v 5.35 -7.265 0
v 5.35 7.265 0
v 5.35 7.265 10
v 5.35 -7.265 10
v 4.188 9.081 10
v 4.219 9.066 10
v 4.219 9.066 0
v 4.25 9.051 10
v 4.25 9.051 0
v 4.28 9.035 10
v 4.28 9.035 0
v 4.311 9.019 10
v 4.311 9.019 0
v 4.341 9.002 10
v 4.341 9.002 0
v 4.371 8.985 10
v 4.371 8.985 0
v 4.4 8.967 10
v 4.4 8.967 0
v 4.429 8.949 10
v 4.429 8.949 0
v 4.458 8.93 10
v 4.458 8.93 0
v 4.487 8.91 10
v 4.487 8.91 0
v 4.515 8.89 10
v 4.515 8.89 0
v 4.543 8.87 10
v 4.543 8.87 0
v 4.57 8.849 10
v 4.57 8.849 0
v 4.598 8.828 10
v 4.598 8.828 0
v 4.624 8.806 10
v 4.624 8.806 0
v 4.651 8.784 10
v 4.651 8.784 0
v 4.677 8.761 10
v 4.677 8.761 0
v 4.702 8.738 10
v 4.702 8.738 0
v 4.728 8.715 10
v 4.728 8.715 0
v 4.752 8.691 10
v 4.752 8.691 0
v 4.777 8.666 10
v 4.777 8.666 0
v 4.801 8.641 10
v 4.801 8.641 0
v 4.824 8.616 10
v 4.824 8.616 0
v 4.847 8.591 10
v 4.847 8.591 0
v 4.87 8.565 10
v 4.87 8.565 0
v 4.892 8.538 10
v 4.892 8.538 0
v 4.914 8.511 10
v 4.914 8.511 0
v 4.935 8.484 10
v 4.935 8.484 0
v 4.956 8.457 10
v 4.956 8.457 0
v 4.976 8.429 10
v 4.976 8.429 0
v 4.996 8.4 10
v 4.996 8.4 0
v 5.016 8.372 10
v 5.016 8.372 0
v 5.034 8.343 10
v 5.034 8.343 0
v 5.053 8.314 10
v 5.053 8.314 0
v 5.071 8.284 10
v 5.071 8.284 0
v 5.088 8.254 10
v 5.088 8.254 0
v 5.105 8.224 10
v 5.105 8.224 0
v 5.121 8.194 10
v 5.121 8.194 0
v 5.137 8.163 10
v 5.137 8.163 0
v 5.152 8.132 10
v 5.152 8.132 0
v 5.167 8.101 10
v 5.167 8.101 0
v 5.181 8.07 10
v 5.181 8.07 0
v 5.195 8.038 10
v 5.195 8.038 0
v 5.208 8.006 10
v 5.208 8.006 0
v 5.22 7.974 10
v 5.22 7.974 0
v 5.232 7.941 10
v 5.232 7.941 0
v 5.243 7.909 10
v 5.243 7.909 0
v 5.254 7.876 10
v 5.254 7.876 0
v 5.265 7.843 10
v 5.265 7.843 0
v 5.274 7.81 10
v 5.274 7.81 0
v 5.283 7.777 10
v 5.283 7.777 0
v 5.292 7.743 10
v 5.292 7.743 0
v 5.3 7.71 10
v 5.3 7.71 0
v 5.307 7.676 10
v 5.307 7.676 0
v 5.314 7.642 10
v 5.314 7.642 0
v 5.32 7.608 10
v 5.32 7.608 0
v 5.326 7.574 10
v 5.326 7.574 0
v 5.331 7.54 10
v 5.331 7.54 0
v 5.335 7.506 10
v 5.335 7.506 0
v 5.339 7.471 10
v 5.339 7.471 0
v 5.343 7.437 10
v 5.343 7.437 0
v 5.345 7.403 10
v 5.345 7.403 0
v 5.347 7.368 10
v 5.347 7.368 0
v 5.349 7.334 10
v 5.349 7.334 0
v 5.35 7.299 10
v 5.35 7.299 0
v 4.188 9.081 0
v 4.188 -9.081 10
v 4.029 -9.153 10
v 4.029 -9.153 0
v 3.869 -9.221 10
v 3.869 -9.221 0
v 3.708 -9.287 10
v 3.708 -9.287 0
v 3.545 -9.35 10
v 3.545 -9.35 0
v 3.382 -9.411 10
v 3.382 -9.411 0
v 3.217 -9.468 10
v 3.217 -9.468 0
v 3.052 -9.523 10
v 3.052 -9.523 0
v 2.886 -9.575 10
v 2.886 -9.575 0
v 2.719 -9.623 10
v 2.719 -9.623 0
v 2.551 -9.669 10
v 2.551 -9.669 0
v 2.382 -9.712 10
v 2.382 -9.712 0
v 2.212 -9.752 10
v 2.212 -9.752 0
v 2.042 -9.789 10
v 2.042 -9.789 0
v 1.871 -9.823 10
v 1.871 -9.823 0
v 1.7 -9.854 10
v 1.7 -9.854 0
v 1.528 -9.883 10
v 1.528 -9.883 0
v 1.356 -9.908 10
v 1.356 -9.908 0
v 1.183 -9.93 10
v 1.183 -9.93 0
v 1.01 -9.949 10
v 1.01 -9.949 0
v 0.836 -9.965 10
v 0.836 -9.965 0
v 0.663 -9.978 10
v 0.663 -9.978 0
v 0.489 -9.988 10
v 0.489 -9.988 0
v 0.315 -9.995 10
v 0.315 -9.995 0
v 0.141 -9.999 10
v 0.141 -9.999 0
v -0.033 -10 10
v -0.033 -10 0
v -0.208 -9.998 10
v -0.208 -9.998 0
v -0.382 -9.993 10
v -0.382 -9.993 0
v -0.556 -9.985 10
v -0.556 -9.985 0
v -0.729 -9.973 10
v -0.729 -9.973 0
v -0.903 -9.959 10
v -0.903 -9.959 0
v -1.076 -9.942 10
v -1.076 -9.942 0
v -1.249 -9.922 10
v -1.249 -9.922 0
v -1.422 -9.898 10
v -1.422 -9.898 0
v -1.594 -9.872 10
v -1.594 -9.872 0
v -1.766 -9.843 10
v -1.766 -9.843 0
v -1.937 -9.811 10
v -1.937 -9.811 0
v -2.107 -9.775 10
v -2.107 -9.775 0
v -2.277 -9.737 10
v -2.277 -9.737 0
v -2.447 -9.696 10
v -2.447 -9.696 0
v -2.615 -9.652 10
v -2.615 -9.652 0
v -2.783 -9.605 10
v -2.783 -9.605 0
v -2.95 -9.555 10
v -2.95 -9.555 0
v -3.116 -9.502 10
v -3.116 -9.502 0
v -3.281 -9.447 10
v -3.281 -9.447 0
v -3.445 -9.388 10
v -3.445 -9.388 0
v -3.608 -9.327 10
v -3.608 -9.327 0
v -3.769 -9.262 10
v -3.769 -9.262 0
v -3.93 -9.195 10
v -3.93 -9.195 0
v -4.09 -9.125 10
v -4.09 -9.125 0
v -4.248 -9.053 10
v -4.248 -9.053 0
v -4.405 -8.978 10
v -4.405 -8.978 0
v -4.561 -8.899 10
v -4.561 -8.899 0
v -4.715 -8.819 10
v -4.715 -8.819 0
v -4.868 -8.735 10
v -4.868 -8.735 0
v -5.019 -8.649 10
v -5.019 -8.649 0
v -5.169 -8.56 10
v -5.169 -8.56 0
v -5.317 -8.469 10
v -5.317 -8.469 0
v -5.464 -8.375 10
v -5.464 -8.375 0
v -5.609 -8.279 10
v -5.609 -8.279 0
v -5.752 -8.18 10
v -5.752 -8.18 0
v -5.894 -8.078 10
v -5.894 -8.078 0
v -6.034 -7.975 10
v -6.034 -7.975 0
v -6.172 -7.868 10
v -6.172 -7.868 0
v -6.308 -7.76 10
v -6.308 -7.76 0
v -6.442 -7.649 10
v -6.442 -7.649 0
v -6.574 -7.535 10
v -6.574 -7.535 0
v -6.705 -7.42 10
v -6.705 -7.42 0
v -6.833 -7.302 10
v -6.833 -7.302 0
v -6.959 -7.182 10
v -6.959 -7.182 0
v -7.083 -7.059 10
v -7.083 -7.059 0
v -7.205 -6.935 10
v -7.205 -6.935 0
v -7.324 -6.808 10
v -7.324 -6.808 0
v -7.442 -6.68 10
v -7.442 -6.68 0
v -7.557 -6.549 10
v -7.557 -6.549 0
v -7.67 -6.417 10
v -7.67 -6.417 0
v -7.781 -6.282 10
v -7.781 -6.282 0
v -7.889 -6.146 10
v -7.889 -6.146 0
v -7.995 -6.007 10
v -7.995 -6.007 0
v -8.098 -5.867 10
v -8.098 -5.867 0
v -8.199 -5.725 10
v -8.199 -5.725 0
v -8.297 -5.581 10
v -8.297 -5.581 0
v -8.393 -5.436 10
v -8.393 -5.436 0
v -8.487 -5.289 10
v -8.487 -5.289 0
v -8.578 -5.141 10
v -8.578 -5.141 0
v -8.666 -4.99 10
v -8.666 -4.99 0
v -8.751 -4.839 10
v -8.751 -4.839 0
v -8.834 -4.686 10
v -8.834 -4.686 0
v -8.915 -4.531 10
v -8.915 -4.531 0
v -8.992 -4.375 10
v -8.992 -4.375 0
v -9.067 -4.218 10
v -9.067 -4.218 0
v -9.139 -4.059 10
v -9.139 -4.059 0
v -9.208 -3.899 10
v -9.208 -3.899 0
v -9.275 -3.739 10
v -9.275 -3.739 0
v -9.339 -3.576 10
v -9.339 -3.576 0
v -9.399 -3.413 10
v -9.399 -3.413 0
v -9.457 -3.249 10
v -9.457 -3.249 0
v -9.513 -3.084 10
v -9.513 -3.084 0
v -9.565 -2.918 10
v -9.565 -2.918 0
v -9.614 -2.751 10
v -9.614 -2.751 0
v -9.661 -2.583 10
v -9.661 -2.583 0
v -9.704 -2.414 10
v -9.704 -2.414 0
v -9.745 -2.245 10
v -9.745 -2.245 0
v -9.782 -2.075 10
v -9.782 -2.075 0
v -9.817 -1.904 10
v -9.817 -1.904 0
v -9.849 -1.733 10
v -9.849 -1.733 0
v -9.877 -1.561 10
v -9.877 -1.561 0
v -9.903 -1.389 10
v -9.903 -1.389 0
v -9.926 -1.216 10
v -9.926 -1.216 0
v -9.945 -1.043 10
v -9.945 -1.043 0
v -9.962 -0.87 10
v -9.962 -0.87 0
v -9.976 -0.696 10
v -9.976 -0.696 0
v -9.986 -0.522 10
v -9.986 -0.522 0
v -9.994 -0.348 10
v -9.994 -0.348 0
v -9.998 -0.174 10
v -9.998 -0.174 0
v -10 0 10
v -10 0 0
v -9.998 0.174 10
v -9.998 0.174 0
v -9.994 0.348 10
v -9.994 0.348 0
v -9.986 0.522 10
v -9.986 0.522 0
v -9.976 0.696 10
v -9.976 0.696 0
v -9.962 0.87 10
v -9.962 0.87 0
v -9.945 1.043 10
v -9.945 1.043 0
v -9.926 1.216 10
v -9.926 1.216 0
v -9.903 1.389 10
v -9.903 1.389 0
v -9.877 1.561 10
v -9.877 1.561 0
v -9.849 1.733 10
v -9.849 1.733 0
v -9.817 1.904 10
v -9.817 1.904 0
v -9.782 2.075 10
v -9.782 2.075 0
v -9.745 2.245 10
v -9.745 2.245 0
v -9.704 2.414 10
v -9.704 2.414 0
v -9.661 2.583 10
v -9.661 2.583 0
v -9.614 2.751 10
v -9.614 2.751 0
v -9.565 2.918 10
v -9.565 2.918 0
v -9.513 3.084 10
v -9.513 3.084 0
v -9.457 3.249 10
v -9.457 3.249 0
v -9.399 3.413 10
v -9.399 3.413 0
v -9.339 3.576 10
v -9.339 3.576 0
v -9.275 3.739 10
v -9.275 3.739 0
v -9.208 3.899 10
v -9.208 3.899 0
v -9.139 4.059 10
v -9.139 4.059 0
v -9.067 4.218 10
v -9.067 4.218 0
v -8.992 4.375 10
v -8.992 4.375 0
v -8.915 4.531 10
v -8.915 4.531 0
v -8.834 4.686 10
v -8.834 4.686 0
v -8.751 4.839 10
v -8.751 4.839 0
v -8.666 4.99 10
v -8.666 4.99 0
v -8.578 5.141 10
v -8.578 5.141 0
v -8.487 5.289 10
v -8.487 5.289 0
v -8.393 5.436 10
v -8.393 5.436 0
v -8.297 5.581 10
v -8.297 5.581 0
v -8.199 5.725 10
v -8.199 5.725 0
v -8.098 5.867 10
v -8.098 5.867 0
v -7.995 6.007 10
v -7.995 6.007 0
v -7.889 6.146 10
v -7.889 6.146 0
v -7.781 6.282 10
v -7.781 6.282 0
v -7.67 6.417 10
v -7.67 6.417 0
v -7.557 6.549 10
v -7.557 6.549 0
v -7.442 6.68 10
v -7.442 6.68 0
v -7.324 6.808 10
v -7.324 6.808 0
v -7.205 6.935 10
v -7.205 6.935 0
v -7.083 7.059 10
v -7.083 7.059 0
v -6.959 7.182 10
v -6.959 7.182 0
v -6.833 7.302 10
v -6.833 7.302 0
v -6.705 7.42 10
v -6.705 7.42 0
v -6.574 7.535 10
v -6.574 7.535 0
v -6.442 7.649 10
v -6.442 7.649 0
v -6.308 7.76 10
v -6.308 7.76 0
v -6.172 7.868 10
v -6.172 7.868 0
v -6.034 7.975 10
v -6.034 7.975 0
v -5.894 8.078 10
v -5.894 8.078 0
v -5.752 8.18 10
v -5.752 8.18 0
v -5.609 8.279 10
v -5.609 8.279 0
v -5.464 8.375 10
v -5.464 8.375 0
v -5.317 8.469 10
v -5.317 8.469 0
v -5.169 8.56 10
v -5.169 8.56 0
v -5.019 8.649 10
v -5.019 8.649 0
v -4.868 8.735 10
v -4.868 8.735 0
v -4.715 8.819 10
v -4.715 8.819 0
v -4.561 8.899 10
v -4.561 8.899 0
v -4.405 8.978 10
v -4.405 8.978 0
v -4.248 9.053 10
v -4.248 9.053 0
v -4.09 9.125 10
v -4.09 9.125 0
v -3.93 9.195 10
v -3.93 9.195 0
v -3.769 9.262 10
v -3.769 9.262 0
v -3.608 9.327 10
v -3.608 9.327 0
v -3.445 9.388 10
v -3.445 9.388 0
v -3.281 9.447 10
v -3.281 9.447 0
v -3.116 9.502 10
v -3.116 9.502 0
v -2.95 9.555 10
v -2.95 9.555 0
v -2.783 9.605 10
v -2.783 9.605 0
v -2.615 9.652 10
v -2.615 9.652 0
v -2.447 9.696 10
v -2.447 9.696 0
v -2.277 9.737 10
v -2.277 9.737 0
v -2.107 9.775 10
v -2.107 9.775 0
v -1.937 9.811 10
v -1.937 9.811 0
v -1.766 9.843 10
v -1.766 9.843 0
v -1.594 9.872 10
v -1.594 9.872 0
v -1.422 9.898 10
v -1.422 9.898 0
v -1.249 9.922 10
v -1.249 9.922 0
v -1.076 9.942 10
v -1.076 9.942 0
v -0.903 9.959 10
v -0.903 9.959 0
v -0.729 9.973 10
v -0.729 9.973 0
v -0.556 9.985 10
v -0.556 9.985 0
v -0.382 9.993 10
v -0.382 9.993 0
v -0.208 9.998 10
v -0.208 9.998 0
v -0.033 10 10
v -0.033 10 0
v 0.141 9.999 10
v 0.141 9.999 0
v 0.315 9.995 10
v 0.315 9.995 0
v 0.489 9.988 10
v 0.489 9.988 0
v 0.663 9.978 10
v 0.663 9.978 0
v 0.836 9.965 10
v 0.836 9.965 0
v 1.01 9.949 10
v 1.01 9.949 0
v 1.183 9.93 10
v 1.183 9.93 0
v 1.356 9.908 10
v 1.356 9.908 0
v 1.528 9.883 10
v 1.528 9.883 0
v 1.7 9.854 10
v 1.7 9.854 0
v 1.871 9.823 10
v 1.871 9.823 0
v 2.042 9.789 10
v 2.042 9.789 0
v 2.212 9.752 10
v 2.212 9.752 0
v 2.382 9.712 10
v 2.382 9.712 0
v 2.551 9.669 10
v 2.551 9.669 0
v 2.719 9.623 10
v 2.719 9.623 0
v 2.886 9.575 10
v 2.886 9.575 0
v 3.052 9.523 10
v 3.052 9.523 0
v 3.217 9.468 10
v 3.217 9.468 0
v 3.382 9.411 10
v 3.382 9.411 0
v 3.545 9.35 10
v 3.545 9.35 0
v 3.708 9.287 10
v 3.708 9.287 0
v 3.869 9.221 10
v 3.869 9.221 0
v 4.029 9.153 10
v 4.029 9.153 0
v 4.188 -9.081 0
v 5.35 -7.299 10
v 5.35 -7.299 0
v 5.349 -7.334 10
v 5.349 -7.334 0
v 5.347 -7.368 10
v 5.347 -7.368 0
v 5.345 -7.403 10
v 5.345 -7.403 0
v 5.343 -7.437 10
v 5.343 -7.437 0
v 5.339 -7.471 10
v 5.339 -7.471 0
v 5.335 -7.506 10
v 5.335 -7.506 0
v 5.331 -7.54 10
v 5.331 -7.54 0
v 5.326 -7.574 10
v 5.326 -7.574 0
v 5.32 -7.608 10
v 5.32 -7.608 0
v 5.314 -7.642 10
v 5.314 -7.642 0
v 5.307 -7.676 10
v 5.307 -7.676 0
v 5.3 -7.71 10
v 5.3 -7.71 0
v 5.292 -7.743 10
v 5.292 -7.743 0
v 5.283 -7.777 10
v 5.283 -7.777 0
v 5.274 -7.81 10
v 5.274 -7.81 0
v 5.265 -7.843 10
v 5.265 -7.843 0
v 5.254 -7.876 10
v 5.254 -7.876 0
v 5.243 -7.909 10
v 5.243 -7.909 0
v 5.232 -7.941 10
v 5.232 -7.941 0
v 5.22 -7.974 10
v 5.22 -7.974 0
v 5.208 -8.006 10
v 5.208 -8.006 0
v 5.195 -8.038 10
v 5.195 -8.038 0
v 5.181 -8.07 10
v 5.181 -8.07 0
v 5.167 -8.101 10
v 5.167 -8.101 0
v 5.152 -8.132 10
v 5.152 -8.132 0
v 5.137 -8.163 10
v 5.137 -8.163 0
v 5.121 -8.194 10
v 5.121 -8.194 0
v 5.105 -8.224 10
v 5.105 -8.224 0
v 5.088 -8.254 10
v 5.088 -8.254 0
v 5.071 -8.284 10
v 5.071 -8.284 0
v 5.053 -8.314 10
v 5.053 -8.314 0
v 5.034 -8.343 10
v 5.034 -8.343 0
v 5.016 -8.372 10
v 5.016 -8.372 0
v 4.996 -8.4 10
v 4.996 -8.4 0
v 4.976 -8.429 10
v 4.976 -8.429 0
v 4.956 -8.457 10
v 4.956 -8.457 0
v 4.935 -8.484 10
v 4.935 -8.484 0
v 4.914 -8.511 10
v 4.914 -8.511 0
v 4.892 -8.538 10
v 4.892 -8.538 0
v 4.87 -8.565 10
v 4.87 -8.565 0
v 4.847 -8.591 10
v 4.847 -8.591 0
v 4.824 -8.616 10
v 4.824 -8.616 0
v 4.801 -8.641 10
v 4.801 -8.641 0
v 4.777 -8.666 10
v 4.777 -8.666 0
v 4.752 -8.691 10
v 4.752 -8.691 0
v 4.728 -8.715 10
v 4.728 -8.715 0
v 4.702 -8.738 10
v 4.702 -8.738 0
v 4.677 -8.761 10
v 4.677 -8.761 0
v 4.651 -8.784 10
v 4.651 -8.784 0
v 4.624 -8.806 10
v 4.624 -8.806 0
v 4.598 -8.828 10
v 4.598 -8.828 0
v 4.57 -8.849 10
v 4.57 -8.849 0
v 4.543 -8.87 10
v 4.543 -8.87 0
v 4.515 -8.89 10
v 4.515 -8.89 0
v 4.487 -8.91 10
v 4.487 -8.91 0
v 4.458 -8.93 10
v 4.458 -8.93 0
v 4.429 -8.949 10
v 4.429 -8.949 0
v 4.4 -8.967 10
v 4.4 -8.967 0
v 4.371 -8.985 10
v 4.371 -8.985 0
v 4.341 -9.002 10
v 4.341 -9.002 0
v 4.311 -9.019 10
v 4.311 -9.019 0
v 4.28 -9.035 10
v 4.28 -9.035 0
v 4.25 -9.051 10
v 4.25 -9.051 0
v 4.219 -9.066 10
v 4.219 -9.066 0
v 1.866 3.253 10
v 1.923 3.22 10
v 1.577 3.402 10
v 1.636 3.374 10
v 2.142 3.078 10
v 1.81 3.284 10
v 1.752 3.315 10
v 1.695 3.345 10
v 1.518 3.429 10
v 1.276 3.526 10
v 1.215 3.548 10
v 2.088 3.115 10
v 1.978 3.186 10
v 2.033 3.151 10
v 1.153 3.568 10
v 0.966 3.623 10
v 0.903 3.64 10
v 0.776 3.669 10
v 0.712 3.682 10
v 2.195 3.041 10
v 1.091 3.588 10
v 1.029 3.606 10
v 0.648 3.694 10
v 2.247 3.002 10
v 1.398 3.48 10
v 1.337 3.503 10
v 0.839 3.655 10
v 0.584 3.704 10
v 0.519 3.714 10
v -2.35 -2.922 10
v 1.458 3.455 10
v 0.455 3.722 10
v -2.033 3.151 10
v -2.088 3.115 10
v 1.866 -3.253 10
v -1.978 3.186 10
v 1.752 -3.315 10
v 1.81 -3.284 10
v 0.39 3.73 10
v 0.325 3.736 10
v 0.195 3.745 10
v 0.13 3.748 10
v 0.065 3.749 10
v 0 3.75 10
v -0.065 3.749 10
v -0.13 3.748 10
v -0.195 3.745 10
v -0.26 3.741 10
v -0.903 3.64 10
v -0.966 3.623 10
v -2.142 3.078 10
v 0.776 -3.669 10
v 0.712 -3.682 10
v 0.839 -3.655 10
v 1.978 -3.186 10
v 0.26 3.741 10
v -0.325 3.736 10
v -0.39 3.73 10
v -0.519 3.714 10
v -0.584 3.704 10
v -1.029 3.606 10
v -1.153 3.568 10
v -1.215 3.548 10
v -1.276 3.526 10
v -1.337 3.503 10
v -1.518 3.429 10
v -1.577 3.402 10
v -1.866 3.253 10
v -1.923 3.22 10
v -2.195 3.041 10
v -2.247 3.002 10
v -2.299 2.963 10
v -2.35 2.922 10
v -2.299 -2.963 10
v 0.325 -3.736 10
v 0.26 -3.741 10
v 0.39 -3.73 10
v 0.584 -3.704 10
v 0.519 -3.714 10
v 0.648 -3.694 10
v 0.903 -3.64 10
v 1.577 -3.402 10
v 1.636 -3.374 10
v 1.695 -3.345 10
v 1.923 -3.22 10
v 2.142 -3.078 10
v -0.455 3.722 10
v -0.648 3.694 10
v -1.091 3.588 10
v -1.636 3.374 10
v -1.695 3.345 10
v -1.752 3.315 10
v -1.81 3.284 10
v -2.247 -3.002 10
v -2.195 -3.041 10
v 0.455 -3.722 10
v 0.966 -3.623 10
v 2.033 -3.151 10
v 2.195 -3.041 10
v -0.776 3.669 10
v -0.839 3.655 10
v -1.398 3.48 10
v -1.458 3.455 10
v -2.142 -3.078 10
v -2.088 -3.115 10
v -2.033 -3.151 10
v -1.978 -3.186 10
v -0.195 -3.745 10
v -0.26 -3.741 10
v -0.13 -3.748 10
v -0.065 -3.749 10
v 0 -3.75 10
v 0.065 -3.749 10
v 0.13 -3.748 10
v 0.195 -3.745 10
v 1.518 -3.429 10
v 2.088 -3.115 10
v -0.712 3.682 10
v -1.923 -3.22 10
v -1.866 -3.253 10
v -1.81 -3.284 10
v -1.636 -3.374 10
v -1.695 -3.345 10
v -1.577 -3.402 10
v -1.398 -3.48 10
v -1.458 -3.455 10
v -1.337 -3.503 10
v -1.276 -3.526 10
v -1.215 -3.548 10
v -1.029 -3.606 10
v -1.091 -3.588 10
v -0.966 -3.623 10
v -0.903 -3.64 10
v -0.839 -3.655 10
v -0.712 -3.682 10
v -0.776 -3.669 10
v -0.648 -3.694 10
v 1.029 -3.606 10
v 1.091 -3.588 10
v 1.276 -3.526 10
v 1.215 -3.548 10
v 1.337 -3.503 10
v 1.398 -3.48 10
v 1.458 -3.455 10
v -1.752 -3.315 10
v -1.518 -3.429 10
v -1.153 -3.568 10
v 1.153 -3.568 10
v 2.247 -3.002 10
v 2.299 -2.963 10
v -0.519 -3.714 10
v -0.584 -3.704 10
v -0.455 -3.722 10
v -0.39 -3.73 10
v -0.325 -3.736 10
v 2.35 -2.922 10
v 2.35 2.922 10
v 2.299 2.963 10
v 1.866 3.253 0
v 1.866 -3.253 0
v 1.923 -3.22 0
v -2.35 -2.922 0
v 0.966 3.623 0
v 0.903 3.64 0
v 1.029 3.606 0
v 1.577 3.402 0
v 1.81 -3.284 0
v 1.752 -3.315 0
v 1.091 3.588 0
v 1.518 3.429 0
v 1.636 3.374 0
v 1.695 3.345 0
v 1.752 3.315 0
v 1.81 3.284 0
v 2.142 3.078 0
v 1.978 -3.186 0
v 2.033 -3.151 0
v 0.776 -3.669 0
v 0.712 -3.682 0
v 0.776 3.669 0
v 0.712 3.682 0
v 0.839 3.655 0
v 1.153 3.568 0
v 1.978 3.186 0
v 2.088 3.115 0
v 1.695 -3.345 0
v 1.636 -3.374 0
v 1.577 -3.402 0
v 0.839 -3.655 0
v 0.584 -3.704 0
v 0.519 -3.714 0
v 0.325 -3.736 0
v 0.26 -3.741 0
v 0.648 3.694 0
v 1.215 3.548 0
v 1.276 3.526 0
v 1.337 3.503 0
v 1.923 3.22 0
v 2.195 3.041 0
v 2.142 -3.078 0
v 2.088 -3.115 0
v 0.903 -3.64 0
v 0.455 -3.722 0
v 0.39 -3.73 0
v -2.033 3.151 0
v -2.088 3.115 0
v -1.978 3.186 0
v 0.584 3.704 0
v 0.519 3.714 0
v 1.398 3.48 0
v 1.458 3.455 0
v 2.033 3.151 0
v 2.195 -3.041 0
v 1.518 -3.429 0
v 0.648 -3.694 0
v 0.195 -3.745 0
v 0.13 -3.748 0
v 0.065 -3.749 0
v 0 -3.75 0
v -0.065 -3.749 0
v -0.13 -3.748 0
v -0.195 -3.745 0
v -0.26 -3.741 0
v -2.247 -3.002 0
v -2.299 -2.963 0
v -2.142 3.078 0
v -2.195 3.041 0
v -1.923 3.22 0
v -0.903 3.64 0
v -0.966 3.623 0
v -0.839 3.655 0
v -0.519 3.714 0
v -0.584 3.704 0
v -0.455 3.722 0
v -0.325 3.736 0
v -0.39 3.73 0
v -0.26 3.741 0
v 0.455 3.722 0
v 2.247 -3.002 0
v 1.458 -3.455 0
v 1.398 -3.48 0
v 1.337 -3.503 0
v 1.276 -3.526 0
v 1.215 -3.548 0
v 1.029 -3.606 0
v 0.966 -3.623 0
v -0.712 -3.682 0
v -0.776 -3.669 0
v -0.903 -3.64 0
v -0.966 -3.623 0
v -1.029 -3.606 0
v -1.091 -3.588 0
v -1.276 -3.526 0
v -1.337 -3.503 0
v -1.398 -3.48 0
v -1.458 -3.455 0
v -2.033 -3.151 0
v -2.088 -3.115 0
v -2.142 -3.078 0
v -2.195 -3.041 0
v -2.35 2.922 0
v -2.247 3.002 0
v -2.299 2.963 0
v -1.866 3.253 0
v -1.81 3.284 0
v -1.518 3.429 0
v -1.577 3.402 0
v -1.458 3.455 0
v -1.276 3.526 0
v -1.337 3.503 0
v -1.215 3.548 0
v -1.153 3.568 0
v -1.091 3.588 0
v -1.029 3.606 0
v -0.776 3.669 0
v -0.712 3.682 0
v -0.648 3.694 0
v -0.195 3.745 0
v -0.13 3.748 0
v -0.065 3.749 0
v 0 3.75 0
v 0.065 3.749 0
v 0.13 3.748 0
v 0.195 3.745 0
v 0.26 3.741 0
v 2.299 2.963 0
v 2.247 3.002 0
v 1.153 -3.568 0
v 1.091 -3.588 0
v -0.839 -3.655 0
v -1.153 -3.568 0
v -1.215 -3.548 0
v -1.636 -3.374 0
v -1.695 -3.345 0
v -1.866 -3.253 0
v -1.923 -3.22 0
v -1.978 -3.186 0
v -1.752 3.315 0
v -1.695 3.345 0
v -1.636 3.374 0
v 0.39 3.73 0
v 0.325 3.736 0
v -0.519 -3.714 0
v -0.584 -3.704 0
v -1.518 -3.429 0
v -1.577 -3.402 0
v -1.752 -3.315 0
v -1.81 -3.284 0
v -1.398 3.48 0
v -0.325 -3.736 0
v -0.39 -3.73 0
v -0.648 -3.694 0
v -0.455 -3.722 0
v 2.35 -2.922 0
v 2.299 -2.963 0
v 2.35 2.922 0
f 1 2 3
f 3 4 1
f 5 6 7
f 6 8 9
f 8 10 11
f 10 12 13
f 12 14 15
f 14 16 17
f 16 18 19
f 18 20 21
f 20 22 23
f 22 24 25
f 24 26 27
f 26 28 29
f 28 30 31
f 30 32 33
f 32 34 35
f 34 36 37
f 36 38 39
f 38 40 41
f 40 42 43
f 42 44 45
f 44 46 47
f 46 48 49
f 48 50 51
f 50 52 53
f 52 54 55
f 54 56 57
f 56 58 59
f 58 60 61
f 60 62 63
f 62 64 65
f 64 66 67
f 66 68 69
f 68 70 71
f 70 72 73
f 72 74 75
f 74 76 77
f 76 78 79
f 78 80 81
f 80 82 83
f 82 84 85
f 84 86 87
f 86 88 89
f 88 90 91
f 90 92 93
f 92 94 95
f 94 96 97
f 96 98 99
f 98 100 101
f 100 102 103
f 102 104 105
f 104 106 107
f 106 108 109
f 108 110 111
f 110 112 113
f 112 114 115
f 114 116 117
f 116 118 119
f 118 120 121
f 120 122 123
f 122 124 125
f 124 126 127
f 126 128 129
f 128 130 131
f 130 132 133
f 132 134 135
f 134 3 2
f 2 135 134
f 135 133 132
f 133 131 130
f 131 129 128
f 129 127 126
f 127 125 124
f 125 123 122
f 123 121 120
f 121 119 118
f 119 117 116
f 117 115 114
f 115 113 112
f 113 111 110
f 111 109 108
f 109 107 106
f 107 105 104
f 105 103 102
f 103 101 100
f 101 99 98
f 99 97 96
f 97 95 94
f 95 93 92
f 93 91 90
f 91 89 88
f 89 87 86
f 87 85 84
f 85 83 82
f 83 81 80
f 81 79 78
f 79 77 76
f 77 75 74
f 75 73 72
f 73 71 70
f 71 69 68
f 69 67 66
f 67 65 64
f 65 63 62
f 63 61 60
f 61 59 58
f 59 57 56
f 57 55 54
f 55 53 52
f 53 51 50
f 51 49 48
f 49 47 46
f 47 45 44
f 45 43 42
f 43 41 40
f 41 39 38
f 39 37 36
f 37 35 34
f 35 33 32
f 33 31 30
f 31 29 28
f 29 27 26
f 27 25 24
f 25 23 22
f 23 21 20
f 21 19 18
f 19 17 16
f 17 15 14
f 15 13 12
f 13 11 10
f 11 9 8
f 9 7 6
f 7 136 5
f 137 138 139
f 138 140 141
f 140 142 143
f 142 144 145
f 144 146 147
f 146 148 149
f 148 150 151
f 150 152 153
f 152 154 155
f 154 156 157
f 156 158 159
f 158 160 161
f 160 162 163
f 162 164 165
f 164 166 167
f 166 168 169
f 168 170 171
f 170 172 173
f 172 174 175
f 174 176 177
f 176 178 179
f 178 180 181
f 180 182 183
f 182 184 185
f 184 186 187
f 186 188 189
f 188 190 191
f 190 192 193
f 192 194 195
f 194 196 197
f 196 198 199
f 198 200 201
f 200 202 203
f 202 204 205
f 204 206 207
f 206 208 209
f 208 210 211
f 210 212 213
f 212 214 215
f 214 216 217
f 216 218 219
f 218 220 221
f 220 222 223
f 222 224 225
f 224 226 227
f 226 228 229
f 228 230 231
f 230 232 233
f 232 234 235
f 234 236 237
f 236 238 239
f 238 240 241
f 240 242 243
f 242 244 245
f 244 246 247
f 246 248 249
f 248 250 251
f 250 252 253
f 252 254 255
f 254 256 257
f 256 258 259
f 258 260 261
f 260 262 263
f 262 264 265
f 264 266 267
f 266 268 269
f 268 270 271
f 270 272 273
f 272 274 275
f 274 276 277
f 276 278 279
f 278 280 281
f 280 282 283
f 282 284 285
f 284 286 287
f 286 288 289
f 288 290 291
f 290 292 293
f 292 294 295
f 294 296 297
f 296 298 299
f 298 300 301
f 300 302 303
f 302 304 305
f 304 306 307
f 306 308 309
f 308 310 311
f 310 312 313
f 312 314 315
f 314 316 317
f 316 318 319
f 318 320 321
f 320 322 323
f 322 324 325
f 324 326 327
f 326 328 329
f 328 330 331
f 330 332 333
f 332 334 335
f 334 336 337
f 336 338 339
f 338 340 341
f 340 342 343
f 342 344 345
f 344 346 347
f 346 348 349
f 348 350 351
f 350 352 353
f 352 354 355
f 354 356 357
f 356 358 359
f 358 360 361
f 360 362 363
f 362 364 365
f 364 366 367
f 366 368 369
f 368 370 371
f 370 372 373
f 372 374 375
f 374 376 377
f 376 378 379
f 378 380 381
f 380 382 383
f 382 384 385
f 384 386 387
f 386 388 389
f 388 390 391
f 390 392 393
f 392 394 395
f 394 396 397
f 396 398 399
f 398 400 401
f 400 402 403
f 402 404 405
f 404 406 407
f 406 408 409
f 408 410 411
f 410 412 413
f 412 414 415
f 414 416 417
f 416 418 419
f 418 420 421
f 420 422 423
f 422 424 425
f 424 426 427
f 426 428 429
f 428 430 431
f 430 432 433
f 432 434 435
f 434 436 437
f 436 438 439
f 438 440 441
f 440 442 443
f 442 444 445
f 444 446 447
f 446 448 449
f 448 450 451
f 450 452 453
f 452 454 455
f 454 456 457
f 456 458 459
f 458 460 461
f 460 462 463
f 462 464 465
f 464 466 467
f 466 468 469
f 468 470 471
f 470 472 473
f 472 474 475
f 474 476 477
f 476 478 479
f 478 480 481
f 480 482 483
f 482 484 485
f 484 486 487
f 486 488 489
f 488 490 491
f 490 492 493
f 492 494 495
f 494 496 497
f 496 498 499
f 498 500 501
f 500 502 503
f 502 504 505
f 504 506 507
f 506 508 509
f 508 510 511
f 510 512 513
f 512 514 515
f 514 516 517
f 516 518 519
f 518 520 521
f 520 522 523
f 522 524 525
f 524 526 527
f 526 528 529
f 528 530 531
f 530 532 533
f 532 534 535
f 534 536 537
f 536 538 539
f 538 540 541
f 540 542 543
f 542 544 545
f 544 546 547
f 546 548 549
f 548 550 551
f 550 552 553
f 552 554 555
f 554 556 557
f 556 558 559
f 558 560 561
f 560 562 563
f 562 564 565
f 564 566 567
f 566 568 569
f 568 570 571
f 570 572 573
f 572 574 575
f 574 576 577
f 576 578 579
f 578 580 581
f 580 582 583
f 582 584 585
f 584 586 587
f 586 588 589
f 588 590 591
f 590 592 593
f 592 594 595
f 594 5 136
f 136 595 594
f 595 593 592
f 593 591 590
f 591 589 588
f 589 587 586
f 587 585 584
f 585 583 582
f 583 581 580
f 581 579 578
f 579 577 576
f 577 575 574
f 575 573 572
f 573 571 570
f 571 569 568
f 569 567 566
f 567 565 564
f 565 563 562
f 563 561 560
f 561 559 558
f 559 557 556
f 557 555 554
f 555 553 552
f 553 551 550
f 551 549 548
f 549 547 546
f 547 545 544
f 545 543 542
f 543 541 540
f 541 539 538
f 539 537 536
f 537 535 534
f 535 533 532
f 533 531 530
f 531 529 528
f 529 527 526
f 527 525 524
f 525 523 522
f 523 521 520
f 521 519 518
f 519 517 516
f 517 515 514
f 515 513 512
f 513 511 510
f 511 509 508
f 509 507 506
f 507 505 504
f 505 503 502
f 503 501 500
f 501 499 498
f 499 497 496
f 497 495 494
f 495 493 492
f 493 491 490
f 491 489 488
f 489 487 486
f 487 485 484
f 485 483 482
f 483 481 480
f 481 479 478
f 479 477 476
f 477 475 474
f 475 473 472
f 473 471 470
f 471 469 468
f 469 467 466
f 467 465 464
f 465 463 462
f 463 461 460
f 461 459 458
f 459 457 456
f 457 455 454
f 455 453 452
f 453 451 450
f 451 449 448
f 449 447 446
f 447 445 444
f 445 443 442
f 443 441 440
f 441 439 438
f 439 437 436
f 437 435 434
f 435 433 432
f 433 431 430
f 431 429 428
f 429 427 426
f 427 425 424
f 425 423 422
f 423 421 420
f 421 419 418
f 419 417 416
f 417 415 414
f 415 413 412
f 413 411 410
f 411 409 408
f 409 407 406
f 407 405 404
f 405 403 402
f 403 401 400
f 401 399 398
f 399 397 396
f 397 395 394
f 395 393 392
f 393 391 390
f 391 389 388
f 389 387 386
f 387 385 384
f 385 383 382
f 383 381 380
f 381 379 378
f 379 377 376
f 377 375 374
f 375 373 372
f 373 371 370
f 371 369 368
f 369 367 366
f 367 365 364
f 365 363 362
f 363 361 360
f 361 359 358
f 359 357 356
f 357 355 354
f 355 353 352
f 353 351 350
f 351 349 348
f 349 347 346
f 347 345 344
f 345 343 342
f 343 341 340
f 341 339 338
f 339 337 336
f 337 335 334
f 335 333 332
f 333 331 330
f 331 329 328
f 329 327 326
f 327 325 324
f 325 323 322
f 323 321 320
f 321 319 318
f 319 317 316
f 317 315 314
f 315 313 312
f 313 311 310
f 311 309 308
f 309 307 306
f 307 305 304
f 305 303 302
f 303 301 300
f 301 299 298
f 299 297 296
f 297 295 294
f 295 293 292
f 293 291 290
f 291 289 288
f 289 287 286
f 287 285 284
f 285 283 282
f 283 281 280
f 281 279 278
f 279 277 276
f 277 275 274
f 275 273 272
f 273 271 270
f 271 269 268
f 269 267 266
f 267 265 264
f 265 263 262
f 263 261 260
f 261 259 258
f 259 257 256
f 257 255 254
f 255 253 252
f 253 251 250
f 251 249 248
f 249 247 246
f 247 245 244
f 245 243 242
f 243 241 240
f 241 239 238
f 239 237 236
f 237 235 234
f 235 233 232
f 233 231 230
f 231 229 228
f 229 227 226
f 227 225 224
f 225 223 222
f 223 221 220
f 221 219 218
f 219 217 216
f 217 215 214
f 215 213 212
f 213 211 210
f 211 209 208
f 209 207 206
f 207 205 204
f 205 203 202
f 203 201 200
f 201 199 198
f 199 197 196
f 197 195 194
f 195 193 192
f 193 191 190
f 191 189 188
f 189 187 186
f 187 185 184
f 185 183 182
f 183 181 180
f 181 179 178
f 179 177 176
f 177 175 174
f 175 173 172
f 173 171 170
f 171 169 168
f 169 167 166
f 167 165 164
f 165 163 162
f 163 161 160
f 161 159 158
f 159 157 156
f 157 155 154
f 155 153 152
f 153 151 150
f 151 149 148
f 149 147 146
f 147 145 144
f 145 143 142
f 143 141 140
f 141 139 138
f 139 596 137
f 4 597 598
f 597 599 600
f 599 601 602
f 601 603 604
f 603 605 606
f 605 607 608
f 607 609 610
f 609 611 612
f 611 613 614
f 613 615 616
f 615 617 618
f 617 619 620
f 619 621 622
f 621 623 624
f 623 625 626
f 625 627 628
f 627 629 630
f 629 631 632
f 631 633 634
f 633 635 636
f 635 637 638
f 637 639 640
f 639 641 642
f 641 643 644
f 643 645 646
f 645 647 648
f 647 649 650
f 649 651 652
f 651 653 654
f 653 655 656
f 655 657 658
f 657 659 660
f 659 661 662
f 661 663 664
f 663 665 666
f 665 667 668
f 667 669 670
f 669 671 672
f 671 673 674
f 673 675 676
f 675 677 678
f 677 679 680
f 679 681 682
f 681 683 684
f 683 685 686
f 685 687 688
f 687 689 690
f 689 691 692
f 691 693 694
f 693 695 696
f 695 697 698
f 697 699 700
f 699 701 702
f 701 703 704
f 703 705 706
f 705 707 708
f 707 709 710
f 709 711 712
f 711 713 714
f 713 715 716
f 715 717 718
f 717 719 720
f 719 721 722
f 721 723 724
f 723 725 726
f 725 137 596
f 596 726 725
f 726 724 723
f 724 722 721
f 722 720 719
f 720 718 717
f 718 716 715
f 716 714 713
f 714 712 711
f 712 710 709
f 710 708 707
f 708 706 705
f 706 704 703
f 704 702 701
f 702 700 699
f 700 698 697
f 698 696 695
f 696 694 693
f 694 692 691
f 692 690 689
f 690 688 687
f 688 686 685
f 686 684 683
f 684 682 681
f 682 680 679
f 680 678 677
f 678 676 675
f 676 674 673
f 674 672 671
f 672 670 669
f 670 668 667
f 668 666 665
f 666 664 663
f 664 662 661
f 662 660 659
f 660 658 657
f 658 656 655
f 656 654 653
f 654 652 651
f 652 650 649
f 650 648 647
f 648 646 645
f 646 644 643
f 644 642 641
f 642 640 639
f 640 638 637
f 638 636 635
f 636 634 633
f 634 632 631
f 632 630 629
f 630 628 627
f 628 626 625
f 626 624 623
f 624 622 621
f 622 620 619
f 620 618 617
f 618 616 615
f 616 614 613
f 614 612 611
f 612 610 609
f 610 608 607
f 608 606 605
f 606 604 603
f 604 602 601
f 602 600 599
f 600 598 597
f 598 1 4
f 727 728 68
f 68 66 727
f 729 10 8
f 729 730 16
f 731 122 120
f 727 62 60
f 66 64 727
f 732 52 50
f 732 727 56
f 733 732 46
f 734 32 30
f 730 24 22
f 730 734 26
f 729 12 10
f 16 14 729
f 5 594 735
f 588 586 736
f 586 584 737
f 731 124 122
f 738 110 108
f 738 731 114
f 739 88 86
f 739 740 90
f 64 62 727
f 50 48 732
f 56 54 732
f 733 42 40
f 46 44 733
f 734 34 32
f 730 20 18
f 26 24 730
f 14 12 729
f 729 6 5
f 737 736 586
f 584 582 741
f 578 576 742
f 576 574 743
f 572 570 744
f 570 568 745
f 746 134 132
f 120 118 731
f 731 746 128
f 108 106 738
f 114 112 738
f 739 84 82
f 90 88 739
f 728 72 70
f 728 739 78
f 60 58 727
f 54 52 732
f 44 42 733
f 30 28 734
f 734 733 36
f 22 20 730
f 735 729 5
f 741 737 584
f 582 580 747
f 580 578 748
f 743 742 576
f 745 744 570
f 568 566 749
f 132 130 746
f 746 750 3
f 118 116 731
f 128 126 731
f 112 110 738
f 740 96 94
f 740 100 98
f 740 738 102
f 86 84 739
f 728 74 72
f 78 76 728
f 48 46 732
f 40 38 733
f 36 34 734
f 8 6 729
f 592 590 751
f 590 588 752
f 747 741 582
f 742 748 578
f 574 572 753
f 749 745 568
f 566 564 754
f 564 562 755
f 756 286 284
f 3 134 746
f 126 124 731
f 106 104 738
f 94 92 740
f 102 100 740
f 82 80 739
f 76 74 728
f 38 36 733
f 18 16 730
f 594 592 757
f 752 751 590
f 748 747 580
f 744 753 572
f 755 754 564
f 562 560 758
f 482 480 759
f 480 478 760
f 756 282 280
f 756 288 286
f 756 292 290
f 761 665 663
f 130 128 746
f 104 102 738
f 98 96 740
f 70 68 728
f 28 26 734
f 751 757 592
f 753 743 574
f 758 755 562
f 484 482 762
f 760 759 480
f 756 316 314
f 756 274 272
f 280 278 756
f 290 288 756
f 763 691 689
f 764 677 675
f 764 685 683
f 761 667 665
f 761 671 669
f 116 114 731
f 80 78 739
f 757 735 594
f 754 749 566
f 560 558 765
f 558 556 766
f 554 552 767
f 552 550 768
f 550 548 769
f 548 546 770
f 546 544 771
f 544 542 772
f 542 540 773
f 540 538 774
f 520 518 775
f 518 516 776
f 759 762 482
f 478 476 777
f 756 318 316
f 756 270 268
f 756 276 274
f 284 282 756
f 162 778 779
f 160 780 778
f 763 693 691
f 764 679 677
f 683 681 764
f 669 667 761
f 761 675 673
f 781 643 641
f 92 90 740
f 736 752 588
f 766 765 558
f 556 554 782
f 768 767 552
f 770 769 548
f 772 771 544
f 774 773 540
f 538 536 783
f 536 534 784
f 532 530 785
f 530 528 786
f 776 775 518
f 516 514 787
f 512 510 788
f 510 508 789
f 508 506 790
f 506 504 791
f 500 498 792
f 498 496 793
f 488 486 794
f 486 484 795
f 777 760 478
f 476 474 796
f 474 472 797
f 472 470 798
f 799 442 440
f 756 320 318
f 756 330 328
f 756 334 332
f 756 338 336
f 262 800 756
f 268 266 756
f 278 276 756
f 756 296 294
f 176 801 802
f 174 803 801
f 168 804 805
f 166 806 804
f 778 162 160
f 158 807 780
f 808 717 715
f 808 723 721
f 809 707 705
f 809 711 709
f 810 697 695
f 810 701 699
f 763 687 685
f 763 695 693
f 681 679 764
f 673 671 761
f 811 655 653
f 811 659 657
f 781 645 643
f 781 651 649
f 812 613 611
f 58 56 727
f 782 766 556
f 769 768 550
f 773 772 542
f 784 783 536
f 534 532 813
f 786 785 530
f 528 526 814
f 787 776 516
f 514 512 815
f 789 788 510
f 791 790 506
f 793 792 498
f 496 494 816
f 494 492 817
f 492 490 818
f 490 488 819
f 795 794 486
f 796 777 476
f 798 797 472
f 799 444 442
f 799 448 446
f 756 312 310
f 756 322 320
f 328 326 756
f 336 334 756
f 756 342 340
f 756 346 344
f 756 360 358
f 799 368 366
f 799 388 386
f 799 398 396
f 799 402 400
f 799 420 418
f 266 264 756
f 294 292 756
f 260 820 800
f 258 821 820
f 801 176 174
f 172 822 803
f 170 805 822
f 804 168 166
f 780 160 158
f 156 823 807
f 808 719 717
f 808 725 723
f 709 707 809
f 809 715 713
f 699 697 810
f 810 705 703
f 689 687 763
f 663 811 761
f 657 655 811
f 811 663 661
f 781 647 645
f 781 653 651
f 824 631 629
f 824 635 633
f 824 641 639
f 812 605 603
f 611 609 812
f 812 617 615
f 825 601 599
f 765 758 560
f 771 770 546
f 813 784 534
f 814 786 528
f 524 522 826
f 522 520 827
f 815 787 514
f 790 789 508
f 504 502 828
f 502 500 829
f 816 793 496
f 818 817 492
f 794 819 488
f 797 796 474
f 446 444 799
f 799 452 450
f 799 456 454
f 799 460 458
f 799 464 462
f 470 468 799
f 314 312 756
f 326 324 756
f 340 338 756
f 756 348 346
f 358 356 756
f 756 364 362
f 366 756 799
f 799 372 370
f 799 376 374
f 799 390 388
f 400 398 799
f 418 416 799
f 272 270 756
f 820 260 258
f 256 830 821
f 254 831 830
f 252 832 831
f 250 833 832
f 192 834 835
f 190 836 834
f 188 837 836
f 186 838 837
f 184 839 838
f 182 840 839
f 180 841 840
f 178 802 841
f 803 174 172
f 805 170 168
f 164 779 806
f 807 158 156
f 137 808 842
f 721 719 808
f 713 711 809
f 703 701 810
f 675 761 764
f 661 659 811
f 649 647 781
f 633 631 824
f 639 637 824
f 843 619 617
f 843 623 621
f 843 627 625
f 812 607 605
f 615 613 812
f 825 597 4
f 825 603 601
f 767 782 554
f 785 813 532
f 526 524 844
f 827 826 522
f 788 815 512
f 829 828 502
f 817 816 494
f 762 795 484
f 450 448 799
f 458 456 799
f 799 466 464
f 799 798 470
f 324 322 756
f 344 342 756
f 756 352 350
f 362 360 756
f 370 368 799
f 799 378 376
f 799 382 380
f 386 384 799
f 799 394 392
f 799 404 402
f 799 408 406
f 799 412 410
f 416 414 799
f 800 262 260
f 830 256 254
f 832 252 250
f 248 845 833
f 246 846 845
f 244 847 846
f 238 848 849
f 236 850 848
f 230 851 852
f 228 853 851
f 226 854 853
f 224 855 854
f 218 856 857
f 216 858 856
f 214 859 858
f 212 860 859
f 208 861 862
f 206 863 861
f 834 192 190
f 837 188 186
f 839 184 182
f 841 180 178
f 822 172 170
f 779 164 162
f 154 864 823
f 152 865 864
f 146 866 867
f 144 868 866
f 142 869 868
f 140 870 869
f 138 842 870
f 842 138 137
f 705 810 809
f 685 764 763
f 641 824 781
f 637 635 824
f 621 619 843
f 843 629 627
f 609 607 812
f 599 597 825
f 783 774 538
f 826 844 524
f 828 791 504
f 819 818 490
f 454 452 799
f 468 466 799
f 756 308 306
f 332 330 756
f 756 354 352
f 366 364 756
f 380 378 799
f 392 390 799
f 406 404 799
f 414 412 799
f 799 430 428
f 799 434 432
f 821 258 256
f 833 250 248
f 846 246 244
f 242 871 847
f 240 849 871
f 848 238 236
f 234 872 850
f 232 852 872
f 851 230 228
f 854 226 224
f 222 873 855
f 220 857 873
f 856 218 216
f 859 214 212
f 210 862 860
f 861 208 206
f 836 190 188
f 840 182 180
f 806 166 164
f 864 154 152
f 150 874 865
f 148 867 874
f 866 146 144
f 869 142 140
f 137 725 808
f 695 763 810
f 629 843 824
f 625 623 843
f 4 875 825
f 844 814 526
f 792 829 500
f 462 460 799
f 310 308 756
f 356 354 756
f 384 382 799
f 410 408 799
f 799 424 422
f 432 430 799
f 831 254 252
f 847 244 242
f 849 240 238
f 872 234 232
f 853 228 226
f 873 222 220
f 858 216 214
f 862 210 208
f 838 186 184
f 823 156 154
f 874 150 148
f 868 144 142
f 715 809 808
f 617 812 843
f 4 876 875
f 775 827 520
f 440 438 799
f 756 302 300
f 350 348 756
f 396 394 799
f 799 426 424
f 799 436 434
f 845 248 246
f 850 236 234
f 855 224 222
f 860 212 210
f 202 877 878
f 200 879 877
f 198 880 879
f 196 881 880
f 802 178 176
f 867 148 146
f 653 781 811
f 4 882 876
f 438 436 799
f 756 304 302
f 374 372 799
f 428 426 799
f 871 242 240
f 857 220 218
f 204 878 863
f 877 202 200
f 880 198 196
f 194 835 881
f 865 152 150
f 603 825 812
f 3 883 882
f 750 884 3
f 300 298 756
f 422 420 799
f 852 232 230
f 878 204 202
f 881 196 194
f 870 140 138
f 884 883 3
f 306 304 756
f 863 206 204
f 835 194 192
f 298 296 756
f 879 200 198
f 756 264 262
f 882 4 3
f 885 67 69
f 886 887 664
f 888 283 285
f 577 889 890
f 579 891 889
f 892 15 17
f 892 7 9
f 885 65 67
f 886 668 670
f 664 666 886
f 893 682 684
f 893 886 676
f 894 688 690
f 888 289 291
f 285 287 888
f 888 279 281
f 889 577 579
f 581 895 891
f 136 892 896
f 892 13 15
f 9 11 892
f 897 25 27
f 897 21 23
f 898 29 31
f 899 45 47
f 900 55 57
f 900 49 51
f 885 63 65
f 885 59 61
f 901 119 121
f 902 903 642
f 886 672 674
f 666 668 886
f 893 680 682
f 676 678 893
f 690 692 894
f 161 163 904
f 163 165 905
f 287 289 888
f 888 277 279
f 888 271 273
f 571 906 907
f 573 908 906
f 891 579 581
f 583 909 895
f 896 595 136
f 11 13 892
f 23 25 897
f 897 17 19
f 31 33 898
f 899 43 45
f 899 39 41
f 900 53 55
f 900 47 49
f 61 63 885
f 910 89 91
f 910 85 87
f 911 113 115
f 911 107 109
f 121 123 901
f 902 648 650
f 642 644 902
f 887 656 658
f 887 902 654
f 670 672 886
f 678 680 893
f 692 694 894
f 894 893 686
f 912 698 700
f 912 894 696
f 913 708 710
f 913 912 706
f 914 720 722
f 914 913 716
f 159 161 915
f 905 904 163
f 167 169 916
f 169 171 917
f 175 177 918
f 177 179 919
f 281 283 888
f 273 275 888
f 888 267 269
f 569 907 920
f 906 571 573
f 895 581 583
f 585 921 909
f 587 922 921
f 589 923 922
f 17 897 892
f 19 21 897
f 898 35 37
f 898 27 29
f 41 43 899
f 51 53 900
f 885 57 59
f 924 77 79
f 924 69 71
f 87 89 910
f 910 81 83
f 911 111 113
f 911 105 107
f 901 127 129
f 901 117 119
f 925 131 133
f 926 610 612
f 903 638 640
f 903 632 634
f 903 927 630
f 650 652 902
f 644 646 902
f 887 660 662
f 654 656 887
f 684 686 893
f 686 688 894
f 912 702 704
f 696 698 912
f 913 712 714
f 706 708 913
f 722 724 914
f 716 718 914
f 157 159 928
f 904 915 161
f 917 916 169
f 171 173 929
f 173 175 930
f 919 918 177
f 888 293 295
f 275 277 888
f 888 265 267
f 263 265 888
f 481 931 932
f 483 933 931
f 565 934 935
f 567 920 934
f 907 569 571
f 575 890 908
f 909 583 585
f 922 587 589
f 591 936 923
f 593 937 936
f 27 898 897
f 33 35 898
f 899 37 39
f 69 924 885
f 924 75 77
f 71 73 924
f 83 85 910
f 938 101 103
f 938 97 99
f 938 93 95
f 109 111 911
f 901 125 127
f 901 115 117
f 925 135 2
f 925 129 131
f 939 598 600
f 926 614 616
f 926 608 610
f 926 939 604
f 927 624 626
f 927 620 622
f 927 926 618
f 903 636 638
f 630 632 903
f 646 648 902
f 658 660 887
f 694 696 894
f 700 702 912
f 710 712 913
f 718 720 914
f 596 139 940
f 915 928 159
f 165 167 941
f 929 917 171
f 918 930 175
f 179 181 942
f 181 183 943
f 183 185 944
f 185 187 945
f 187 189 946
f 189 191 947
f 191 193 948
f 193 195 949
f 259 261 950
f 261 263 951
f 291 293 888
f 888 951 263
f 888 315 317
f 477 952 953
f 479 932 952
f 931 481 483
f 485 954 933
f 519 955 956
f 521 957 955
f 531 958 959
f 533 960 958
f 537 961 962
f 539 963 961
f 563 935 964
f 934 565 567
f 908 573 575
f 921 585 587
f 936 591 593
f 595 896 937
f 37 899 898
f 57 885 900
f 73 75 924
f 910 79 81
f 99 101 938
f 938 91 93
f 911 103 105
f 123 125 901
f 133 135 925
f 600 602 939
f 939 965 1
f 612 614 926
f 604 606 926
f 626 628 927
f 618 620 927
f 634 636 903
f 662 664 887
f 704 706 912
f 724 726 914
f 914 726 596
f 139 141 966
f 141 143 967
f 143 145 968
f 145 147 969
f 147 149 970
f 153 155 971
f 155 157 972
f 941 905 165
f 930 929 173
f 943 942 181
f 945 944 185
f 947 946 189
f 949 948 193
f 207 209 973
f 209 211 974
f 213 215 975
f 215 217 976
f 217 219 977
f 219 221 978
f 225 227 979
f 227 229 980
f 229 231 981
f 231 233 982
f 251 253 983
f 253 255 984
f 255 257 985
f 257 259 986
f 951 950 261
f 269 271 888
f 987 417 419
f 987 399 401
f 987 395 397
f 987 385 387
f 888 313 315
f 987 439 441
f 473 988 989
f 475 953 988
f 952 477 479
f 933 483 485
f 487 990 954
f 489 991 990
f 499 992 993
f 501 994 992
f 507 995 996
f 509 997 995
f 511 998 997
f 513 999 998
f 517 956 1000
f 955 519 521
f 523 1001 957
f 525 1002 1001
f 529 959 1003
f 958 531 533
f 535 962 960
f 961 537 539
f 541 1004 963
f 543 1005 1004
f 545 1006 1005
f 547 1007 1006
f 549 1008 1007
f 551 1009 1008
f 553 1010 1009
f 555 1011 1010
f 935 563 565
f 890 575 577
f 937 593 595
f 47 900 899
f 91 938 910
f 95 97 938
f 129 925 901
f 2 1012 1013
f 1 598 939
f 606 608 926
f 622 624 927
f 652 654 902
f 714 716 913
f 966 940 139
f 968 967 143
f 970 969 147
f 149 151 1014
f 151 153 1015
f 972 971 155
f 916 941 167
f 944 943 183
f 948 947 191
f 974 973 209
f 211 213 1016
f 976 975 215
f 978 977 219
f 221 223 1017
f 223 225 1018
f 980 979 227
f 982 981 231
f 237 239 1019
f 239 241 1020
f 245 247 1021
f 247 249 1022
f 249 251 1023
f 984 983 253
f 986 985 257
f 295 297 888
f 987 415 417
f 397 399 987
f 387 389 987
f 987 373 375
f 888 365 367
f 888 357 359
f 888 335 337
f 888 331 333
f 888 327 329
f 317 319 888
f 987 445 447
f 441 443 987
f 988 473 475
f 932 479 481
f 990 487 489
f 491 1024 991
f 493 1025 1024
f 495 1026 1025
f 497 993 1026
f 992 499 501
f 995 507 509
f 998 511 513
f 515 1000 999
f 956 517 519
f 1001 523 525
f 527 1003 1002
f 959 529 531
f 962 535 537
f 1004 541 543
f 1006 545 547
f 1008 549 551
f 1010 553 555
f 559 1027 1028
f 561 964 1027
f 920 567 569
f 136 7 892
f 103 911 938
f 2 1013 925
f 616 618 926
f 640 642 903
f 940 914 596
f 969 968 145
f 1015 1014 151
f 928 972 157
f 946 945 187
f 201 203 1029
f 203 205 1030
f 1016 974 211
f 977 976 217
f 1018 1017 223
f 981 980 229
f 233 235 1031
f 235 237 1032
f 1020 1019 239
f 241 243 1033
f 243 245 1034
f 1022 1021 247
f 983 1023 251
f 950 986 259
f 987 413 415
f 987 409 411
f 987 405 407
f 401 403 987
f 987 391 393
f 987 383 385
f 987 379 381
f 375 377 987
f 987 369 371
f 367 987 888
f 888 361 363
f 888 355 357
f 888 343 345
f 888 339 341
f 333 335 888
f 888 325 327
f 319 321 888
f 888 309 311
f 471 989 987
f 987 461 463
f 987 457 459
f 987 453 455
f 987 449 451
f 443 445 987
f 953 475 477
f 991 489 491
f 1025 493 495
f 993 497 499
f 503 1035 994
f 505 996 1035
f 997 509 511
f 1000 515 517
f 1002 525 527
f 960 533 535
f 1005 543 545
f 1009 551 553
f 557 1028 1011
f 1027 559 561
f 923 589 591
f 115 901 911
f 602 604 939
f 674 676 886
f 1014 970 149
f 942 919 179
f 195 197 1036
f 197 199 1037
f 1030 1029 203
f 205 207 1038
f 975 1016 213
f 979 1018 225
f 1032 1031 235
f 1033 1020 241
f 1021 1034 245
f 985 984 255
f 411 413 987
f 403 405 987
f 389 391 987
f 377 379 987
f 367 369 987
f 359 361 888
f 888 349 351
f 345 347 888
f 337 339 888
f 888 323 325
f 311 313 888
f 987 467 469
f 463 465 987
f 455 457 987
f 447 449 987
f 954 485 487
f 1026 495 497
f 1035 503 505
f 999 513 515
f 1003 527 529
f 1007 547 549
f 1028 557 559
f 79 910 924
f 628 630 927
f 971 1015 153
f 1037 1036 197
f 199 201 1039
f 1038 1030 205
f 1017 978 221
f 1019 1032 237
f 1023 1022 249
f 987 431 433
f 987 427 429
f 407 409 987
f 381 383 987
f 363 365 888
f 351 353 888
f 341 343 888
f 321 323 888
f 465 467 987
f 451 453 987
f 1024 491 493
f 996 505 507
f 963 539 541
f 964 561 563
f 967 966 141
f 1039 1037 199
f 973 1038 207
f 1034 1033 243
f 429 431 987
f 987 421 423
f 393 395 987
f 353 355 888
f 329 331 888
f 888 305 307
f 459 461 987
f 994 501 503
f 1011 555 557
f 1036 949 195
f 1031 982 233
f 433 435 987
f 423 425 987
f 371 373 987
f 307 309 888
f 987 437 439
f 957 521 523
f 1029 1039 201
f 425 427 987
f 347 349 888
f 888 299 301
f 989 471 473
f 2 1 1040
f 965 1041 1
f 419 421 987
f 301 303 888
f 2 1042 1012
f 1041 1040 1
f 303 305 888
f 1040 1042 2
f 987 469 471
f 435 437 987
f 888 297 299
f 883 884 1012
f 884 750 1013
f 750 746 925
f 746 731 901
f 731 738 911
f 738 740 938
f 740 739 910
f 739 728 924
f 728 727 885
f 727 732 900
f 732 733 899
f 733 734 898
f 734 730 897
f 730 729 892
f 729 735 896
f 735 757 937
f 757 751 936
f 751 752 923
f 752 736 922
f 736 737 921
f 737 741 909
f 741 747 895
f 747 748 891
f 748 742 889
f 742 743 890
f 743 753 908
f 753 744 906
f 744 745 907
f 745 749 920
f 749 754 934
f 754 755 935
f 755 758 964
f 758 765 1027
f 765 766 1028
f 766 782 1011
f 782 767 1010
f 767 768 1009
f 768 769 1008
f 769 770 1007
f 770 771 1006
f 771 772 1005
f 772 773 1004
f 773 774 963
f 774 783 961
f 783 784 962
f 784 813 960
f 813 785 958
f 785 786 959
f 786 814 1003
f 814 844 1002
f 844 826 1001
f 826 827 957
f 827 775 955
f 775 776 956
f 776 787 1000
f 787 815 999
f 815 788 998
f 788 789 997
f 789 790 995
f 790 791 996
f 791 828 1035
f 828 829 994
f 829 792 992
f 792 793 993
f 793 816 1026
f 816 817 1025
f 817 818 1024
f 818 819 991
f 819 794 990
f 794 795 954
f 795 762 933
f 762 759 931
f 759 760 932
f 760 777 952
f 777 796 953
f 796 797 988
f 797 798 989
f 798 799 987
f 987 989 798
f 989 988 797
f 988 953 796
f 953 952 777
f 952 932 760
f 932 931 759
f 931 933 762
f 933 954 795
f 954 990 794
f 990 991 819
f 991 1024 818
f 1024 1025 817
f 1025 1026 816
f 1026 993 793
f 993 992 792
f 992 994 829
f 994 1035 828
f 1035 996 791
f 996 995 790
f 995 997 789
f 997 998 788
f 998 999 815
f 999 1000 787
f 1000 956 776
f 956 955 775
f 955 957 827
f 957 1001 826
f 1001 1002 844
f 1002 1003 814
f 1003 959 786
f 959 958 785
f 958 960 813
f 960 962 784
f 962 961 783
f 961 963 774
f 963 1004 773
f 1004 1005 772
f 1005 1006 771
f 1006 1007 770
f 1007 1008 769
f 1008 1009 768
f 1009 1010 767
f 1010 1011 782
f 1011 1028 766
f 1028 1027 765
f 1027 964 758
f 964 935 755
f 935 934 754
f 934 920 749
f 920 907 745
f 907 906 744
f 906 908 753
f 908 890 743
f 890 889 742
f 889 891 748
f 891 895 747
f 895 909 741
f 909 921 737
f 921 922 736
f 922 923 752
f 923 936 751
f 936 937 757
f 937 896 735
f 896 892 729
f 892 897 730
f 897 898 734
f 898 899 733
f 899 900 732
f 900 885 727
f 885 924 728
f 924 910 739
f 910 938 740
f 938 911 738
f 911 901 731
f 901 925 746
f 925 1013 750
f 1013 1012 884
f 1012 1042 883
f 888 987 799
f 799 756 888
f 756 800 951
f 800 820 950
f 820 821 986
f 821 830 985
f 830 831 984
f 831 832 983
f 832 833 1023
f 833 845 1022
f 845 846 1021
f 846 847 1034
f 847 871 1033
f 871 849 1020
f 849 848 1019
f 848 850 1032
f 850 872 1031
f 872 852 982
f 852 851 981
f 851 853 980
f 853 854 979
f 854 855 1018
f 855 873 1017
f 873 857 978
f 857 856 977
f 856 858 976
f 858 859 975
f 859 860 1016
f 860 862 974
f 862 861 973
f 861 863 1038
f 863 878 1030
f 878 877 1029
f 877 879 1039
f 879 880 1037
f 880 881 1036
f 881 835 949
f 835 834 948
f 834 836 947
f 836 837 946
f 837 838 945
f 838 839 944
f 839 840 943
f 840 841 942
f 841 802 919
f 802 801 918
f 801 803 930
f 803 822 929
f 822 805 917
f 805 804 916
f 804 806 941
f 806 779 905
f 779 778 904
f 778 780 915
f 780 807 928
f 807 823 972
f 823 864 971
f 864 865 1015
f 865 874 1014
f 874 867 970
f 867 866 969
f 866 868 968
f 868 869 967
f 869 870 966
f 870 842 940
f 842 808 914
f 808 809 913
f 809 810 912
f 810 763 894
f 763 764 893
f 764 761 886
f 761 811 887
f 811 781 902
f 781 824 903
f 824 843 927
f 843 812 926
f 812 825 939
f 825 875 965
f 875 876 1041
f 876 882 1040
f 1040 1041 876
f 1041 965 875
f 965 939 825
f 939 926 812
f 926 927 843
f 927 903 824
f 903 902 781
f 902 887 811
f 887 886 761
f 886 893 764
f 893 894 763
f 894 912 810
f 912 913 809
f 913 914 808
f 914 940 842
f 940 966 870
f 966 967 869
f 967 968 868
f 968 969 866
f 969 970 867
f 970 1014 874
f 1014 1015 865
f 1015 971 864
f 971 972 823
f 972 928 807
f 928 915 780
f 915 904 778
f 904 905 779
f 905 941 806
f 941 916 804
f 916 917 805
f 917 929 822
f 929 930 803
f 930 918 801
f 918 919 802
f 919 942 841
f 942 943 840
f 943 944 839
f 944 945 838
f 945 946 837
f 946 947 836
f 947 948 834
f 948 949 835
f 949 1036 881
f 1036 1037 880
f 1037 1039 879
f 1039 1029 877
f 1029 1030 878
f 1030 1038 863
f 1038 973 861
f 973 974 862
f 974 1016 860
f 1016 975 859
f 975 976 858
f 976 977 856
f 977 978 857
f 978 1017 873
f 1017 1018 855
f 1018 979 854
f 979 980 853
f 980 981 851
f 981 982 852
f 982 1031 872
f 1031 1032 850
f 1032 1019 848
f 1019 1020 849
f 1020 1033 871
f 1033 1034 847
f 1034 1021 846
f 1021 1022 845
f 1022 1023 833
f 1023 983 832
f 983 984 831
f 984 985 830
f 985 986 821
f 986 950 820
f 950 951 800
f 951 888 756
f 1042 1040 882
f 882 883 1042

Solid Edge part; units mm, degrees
sketch "Sketch1" plane through (0, 0, 0) normal (0, 0, 1) x (1, 0, 0)
  line L0 (5.35, 8.4485) -> (5.35, -8.4485)
  arc A0 (5.35, -8.4485) -> (5.35, 8.4485) centre (0, 0) cw
  line L1 (-2.35, -2.9223) -> (-2.35, 2.9223)
  arc A1 (2.35, -2.9223) -> (-2.35, -2.9223) centre (0, 0) cw
  line L2 (2.35, 2.9223) -> (2.35, -2.9223)
  arc A2 (-2.35, 2.9223) -> (2.35, 2.9223) centre (0, 0) cw
extrude "Protrusion1" add sketch "Sketch1" along normal blind 10
fillet "Round_1" radius 2 1 edges at (5.35, 8.4485, 5)
fillet "Round_2" radius 2 1 edges at (5.35, -8.4485, 5)
